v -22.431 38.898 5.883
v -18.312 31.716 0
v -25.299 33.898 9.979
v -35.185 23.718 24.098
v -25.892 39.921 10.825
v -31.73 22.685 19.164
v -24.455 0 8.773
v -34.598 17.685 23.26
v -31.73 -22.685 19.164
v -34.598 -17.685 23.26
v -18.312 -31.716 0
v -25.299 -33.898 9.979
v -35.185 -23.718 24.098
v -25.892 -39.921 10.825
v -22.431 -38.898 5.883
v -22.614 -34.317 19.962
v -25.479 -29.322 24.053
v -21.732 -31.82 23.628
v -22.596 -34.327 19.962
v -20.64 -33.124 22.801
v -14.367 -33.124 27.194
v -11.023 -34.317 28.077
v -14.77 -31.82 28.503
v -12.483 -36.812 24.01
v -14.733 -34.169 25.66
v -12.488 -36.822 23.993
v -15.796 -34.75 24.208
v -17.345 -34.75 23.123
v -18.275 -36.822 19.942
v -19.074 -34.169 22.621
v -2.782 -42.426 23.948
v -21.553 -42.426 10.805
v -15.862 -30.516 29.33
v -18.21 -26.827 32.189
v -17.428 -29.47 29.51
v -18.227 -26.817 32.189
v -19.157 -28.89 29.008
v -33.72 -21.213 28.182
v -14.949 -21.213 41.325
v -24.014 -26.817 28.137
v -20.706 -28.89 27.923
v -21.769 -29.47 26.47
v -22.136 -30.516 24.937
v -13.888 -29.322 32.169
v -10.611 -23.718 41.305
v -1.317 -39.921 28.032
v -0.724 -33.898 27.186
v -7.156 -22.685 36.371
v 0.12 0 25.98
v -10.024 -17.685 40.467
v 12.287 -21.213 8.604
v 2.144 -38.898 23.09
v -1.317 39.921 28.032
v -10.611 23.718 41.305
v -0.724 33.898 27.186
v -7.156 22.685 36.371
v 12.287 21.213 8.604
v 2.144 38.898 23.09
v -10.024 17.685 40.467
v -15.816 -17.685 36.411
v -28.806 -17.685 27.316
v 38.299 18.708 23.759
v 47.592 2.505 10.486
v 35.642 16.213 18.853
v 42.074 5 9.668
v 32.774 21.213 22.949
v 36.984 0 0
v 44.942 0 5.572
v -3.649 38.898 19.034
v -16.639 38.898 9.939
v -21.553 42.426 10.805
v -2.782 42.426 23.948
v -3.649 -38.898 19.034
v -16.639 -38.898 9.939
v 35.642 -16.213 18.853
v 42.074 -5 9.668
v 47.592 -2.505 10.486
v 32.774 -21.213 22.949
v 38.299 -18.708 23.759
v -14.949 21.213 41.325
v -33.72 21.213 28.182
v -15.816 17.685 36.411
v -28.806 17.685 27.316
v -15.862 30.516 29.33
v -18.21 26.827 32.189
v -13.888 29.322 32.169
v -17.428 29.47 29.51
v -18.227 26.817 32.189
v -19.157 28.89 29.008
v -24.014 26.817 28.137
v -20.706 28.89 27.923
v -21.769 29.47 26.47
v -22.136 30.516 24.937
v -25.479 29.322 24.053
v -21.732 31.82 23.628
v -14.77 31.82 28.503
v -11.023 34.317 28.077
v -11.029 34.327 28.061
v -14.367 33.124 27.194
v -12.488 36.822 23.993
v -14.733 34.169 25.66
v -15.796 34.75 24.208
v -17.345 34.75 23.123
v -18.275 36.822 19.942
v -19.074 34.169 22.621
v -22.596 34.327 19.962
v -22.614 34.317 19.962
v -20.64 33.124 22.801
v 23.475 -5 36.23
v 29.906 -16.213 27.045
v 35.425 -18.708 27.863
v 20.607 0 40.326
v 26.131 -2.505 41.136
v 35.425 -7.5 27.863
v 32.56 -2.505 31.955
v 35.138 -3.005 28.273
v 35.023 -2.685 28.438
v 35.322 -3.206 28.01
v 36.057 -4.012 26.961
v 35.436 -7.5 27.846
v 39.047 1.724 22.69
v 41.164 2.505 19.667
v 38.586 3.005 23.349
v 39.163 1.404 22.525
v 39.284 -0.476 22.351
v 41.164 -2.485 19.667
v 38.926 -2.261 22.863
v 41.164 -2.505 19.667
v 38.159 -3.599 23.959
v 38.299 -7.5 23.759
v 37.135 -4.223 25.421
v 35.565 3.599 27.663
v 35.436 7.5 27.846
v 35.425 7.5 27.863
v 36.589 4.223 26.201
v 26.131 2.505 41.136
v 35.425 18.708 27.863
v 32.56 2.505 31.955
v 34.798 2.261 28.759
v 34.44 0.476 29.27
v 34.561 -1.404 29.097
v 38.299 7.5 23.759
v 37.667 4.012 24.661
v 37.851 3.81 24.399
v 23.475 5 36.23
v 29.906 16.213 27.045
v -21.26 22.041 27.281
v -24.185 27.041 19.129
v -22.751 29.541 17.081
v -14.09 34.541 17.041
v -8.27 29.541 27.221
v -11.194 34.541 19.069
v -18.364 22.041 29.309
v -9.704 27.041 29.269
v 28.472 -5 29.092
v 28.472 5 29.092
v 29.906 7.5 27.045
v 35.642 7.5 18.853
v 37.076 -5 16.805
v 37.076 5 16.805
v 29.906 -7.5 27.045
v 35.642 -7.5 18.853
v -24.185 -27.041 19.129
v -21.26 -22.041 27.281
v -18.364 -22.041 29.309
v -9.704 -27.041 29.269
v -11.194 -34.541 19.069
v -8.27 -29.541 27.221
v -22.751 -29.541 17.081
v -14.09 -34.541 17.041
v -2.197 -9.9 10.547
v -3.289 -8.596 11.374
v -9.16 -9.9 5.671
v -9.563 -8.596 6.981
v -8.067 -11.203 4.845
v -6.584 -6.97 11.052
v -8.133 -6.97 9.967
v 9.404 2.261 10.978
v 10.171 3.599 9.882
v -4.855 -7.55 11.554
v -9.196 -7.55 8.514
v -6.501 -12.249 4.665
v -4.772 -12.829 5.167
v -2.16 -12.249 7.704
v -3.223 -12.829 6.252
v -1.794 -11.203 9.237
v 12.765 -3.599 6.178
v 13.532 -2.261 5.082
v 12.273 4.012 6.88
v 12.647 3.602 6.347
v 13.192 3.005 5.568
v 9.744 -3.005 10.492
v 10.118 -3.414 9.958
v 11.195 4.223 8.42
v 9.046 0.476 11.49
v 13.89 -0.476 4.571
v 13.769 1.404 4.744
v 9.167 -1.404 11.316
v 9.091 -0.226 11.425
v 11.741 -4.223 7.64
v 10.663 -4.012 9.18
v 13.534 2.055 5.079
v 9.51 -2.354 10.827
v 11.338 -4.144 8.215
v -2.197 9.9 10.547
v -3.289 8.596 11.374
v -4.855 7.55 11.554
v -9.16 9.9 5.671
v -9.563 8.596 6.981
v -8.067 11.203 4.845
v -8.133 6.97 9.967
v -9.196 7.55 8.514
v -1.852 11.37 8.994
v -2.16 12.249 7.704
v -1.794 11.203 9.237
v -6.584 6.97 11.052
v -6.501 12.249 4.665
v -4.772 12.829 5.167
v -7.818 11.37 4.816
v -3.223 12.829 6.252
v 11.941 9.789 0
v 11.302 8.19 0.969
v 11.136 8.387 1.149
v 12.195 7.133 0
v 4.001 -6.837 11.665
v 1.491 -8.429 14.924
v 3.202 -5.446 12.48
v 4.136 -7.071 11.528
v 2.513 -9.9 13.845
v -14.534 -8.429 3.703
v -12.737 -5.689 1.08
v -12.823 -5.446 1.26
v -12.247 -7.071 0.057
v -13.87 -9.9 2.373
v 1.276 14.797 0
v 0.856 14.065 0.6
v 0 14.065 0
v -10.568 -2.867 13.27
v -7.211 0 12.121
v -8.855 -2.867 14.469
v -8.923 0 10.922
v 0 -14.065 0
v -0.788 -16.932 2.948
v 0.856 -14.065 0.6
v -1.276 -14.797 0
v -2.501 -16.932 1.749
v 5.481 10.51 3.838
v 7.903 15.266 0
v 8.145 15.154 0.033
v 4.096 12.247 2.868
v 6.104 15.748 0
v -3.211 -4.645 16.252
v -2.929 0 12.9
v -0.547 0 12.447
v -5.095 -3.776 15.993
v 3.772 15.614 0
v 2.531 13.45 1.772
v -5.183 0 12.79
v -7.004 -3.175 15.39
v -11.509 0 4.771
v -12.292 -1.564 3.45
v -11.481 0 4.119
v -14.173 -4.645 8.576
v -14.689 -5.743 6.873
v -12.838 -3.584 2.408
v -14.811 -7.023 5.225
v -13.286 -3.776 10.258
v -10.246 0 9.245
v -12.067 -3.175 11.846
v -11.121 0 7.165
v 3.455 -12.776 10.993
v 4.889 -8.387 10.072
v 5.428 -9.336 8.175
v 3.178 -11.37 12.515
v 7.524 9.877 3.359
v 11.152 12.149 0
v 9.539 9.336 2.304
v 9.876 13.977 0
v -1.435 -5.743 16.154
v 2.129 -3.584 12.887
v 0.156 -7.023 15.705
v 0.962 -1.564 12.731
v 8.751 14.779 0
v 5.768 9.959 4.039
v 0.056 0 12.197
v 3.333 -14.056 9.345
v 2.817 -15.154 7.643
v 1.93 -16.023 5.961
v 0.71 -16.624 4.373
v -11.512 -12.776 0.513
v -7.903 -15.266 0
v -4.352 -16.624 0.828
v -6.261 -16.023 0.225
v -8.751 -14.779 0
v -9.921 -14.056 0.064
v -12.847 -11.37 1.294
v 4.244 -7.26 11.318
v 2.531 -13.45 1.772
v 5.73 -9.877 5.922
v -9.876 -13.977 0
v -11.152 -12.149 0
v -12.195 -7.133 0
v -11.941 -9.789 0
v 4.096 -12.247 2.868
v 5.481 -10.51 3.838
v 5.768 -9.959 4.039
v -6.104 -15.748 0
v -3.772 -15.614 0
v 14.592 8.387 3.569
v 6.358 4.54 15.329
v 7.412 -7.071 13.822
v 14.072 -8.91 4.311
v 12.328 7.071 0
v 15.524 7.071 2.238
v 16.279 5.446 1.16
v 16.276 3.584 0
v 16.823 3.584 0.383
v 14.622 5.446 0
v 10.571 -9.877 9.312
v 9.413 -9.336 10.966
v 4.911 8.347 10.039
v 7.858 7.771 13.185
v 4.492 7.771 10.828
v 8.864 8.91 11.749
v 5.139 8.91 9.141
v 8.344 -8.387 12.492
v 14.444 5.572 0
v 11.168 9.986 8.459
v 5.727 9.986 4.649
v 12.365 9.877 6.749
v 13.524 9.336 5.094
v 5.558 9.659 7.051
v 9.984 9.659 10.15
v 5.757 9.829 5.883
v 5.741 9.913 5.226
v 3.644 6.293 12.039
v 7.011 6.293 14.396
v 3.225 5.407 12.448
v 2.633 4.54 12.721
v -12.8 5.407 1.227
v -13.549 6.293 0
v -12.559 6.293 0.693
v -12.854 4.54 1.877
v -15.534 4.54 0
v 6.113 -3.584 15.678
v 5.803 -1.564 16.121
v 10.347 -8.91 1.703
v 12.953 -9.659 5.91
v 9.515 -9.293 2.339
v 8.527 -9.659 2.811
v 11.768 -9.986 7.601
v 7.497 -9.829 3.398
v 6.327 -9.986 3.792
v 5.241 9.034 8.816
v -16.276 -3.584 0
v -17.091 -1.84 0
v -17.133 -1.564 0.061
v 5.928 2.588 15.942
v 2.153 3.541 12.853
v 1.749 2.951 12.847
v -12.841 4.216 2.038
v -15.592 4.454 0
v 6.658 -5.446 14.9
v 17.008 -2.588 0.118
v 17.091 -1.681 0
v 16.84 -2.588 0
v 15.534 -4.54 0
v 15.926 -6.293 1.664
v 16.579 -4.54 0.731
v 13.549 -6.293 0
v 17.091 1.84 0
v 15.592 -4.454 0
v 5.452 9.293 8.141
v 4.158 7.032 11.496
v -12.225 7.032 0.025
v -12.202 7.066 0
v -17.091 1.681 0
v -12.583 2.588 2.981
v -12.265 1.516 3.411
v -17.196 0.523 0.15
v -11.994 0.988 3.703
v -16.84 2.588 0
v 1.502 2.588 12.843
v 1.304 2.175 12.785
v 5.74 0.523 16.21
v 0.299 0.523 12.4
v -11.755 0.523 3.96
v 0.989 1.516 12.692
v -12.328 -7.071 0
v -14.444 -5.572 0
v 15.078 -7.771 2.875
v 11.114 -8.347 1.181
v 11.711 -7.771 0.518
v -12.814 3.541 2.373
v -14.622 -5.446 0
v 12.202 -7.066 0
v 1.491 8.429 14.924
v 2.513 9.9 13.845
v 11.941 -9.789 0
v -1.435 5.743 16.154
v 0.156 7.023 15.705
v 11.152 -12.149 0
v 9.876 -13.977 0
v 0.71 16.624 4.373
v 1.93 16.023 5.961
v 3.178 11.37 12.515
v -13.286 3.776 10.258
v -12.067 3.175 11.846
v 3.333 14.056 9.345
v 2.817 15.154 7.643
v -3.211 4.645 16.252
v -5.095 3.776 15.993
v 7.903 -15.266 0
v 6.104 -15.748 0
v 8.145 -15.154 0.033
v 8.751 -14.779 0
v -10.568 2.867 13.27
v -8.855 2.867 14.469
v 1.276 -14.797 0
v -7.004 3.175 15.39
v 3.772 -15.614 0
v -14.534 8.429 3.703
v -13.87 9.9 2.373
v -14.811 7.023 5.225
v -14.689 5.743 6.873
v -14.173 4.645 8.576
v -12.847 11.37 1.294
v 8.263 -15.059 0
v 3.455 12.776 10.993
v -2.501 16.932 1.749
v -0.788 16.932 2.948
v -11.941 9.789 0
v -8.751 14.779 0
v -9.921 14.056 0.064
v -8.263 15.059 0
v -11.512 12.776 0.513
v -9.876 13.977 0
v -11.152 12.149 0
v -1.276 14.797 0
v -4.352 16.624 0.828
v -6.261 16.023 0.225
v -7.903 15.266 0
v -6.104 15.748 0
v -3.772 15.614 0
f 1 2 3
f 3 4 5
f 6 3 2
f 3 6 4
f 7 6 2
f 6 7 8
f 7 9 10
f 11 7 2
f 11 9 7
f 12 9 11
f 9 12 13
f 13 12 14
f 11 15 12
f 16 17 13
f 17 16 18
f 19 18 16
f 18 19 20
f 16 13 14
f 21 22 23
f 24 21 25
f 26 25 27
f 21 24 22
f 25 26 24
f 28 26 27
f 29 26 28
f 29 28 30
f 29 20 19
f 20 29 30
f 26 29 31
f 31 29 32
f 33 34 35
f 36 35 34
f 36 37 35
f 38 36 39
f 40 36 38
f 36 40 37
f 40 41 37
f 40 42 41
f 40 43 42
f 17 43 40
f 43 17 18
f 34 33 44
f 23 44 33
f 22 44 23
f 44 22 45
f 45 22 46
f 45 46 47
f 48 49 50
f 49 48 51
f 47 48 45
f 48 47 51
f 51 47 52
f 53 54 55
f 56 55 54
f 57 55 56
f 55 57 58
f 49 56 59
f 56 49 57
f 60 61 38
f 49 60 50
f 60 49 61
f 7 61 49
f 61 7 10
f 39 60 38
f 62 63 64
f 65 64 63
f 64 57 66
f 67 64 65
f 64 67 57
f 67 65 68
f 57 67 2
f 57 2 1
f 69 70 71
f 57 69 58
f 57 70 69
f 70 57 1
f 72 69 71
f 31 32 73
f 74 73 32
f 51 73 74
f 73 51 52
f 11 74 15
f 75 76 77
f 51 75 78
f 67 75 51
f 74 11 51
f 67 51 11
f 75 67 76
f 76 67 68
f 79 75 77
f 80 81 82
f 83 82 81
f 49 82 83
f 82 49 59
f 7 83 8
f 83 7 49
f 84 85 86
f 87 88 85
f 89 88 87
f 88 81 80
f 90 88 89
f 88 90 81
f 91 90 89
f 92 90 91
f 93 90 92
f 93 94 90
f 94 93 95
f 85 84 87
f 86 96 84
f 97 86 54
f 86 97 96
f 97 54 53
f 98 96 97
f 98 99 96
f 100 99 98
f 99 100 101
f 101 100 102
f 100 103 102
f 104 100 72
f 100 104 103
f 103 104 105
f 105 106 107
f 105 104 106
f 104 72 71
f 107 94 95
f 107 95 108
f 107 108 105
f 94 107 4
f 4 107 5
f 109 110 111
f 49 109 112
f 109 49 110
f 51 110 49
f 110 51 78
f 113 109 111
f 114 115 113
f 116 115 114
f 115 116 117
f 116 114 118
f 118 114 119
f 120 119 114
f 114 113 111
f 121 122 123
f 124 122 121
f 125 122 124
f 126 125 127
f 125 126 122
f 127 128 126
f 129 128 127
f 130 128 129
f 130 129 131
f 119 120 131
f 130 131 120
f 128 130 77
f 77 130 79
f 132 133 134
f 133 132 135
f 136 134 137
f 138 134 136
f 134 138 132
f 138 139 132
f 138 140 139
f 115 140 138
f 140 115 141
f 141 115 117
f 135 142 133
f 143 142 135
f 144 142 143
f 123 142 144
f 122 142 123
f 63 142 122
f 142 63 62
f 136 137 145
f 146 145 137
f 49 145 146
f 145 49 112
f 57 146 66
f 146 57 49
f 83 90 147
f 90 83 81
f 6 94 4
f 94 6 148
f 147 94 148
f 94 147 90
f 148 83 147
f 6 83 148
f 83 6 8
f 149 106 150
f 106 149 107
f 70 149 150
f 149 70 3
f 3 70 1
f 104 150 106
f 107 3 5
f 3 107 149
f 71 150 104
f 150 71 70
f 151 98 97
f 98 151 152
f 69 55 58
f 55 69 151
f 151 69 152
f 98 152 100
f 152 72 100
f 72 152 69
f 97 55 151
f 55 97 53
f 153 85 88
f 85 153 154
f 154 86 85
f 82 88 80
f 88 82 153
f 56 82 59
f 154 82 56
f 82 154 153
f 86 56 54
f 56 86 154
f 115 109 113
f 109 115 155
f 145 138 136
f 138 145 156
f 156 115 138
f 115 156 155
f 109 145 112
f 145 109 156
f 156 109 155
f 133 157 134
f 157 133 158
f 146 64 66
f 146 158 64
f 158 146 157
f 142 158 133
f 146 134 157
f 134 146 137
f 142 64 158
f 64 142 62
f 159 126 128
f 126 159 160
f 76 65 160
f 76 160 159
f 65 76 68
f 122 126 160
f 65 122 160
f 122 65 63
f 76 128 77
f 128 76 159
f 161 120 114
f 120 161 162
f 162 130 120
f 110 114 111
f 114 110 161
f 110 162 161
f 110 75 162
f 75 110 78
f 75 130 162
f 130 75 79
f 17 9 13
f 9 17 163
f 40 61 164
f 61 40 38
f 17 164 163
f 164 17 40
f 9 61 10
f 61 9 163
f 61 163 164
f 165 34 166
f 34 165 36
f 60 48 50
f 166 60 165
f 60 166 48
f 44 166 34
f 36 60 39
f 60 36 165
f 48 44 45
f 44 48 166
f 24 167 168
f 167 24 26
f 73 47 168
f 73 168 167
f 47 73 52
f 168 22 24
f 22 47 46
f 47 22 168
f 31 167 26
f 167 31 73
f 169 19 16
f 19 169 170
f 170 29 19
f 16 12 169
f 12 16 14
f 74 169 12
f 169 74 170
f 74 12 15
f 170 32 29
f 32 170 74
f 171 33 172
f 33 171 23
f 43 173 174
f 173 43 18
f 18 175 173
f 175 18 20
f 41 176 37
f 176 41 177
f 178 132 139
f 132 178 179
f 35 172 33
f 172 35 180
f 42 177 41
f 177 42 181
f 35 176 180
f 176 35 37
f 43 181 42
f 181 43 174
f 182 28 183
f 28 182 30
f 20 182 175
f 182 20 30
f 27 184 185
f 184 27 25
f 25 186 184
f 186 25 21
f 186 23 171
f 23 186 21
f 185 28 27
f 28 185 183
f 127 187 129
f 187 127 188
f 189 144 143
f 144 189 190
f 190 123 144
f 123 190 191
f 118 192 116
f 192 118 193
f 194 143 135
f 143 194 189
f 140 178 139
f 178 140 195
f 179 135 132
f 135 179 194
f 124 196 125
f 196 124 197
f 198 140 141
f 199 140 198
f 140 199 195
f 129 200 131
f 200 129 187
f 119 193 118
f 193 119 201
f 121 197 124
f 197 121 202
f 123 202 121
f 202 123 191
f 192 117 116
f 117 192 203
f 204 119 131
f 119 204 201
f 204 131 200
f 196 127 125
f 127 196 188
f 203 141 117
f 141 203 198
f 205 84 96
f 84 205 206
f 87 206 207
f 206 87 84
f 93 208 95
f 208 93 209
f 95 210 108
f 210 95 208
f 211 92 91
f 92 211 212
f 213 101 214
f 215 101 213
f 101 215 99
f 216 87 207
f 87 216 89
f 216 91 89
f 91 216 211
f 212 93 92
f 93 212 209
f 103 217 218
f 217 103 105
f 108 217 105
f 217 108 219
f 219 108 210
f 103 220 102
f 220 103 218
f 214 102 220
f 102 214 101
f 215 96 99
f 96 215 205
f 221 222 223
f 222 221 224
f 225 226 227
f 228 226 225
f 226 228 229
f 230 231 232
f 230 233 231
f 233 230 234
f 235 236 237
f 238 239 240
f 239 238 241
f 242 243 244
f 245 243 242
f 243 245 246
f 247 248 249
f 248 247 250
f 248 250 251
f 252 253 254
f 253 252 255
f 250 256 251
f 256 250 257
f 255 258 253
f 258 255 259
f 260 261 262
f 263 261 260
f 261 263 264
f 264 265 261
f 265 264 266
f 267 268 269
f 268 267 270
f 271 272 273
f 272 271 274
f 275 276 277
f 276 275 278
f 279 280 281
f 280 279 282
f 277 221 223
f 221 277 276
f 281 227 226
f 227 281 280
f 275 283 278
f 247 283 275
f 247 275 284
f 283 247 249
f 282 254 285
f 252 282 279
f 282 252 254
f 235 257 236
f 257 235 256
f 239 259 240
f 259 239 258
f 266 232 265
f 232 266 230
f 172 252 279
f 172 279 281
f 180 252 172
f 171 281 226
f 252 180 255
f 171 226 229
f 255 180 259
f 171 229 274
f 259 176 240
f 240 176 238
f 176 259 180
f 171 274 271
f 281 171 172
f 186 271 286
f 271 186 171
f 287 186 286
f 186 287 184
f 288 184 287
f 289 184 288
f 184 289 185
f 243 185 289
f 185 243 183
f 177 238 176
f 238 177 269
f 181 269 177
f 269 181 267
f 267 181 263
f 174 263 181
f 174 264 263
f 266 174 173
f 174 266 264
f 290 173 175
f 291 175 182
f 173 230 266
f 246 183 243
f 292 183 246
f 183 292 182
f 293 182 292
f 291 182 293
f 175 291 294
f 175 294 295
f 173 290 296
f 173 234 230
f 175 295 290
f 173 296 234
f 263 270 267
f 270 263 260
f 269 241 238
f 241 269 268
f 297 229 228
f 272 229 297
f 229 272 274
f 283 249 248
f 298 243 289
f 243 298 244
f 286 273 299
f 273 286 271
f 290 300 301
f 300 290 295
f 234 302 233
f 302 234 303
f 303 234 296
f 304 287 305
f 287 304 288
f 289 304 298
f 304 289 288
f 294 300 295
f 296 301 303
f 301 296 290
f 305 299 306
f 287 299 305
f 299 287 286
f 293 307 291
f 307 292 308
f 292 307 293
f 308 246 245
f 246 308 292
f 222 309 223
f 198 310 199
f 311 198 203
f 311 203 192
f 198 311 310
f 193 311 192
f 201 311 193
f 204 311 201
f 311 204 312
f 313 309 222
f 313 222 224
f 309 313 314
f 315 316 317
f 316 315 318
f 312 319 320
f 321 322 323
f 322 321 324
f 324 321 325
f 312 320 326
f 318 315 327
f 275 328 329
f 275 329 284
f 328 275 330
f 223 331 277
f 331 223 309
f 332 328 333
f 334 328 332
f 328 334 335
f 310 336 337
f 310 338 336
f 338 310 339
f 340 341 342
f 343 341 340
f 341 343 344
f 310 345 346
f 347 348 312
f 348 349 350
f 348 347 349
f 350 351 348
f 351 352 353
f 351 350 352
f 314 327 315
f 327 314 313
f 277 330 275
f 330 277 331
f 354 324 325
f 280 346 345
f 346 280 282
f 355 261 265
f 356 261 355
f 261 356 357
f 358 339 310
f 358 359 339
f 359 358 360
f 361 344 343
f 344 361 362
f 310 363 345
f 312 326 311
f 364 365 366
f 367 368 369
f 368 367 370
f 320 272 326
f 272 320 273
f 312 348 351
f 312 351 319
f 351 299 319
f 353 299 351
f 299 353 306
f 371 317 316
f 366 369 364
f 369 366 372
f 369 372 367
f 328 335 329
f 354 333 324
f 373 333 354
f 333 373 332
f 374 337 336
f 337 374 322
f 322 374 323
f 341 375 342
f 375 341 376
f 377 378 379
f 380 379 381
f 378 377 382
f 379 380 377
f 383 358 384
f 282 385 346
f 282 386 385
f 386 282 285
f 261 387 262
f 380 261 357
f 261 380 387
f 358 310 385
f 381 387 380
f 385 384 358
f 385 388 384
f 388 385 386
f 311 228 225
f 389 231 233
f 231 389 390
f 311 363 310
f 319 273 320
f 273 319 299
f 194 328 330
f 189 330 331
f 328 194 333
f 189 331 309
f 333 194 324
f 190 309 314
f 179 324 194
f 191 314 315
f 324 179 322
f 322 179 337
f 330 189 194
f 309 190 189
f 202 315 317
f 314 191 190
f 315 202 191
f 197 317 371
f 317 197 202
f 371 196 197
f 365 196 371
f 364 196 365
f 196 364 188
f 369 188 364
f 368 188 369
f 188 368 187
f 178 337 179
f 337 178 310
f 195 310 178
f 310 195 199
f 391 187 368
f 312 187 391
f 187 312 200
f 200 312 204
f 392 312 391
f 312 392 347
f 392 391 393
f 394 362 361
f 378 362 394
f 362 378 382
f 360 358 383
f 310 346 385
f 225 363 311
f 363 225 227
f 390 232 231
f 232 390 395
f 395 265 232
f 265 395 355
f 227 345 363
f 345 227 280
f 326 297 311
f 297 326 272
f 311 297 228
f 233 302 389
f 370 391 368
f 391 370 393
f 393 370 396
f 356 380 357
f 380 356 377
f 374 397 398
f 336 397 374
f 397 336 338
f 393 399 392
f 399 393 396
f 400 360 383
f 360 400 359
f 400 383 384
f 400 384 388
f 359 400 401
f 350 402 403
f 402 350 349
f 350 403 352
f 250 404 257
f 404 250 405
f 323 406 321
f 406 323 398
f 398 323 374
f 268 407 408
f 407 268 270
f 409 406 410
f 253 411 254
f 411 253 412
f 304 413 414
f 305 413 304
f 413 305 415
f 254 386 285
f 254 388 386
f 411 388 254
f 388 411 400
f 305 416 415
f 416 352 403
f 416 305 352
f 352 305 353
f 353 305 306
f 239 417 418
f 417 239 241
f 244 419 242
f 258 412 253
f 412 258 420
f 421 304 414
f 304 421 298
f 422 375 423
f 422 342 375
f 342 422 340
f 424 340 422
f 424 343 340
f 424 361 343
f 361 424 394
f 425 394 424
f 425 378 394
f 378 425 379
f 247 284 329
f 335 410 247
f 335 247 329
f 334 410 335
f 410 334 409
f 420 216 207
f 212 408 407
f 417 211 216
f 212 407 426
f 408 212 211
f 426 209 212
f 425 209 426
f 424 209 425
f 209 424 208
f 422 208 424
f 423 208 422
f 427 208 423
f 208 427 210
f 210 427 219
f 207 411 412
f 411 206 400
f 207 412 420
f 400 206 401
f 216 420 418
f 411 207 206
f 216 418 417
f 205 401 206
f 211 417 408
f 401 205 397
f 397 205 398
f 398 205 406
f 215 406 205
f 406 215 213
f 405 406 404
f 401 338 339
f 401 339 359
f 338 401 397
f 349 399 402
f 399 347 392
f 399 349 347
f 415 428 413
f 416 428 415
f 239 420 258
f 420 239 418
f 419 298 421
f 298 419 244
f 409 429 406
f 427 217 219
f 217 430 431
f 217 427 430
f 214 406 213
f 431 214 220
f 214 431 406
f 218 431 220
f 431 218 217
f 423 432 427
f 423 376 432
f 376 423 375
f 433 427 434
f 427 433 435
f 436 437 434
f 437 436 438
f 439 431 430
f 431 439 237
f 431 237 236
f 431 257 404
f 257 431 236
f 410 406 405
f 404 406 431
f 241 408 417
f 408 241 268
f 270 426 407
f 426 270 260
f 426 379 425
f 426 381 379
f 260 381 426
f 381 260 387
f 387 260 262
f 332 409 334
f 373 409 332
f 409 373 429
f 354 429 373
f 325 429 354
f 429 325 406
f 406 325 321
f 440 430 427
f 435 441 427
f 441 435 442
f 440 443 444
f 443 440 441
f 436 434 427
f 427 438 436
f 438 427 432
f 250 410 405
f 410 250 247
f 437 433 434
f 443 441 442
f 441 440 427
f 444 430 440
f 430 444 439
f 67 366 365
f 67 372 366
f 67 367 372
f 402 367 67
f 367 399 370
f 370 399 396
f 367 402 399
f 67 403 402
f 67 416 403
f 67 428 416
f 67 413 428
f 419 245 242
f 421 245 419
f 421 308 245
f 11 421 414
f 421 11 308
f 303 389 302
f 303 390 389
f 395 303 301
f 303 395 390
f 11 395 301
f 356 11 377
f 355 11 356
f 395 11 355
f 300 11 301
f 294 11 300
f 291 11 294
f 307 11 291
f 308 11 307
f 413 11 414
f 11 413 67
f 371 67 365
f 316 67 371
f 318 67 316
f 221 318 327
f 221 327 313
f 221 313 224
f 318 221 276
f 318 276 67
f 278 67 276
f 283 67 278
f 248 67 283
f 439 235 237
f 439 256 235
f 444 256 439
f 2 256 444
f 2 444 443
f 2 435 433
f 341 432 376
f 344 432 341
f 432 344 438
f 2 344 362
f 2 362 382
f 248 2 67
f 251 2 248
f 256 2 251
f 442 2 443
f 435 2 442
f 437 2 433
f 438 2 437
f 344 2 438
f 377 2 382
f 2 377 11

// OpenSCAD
// file: globals.scad
/*
Most things in this file is represented as one millimeter, so keep that in mind while changing things.
Some of the setting are not mm but at variables that you can set, such as 2*x=2x and you are setting what x is.
I will try to specify when things are variables and not exact measurements.
*/

obj_leg = 30;
leg_length = 5.5;
small_number = 0.001;
metal_core_rode_global = 5;


///////////////// number of holes /////////////////////
z_hole_number = 8;
other_holes = 8;

///////////////// Pins /////////////////////

//pins that poke out
ball_size = 10;
pin_height = 20;
pin_diameter = 6;


//holes
hole_ball_size = ball_size;
hole_pin_height = pin_height;
hole_pin_diameter = pin_diameter;

///////////////// Z THINGS /////////////////////

berring_slot_width = 7.5;
berring_slot_depth = 6.5;
metal_core_rode = 5;

///////////////// X THINGS /////////////////////

//male dove tails
max_width=10;
min_width=5;
depth=5;
height=obj_leg/2;

//female dove tails, this is found on the y mounts
girl_max_width=11;
girl_min_width=5;
girl_depth=5;
girl_height=obj_leg;


///////////////// Y THINGS /////////////////////
/*
The Y is so normal that all of those global variables at the top should change all of the setting in it, this section is set her incase there are variables set in the future development of this project.
*/
// file: include.scad
//////////////////      END SECTION       //////////////////

	module added_pins(){
		difference(){
			union(){
				translate([30/(15/4),obj_leg*leg_length,30/(15/4)]) pin();
				translate([30/(15/4)+14.5,obj_leg*leg_length,30/(15/4)+14]) pin();
			}
			union(){
							translate([30/(15/4)+13.5,obj_leg*leg_length-20,30/(15/4)+5])cube(size=[2,40,15]);
							translate([30/(15/4)+7.5,obj_leg*leg_length-20,30/(15/4)+15])rotate([0,90,0]) cube(size=[2,40,15]);	

							translate([30/(15/4)-1,obj_leg*leg_length-20,30/(15/4)-8])cube(size=[2,40,15]);
							translate([30/(15/4)-10,obj_leg*leg_length-20,30/(15/4)+1])rotate([0,90,0]) cube(size=[2,40,15]);
			}
		}
	}
	module taken_pins() {
		translate([30/(15/4)+14,obj_leg*leg_length-10,30/(15/4)]) mirror_pin();
		translate([30/(15/4),obj_leg*leg_length-10,30/(15/4)+15]) mirror_pin();
	}


//////////////////      OTHER STUFF       //////////////////

	module holes() {
		rotate([0,0,90]) for(y=[0:other_holes])
		translate([obj_leg+y*15,-15.5,7.5]) union() {
			translate([7.5,0,15]) hole_up();
			hole_down();
		}
	}
	module extend_holes() {
	module top(){
		rotate([0,0,90]) for(y=[0:other_holes+1])
		translate([(30/4)+y*15,-15.5,7.5]) union() {
			translate([7.5,0,15]) hole_up();
		}
	}
	module bottom(){
		rotate([0,0,90]) for(y=[0:other_holes+2])
		translate([(30/4)+y*15,-15.5,7.5]) union() {
			hole_down();
		
}
	}
	union(){
		top();
		bottom();
	}
	}

	module hole() {
		union() {
			rotate([90, 90, 0]) cylinder(h=40, d=hole_pin_diameter, center=true);
			translate([0,7.5,0]) sphere(d=hole_ball_size);
			translate([0,-6,0]) sphere(d=hole_ball_size);
		}
	}
	module hole_up() {
		union() {
			rotate([90, 90, 0]) cylinder(h=40, d=hole_pin_diameter, center=true);
			translate([0,7.5,10]) cylinder(h=hole_pin_height, d=hole_pin_diameter, center=true);
			translate([0,-6,10]) cylinder(h=hole_pin_height, d=hole_pin_diameter, center=true);
			translate([0,7.5,0]) sphere(d=hole_ball_size);
			translate([0,-6,0]) sphere(d=hole_ball_size);
		}
	}
	module hole_down() {
		union() {
			rotate([90, 90, 0]) cylinder(h=40, d=hole_pin_diameter, center=true);
			translate([0,7.5,-10]) cylinder(h=hole_pin_height, d=hole_pin_diameter, center=true);
			translate([0,-6,-10]) cylinder(h=hole_pin_height, d=hole_pin_diameter, center=true);
			translate([0,7.5,0]) sphere(d=hole_ball_size);
			translate([0,-6,0]) sphere(d=hole_ball_size);
		}
	}
	module pin() {
		union() {
			rotate([90, 90, 0]) cylinder(h=pin_height, d=pin_diameter, center=true);
			translate([0,7.5,0]) sphere(d=ball_size);
		}
	}

	module mirror_pin() {
		rotate([90, 90, 0]) cylinder(h=hole_pin_height+small_number, d=hole_pin_diameter, center=true);
		translate([0,-(pin_height-(ball_size/2)),0]) sphere(d=ball_size);
	}


//////////////////      SOME RACK AND Z THINGS       //////////////////

module z_holes() {
    rotate([0,-90,0]) for(z=[0:z_hole_number])
    translate([22.5+z*15,16,-12])
        hole();
}

module pin_cuts() {
	union(){
		cube(size=[2,10,40], center=true);
		rotate([0,0,90]) cube(size=[2,10,40], center=true);
	}
}
module pin_uncut() {
	union(){
		rotate([0, 0, 90]) cylinder(h=hole_pin_height, d=hole_pin_diameter, center=true);
		translate([0,0,10]) sphere(d=ball_hole);
	}
}


module pin_out() {
	union(){
		rotate([0, 0, 90]) cylinder(h=pin_height, d=pin_diameter, center=true);
		translate([0,0,10]) sphere(d= ball_size);
	}
}


module pins_z(){
	difference() {
		pin_out();
		pin_cuts();
	}
}
//////////////////      RACK AND SLIDE     ///////////////////

module straight_pins() {
	for(z=[0:((((obj_leg*leg_length)*2)-(obj_leg*2))/3)/14.5]) rotate([-90,0,0]) translate([z*15,30/(15/4),14]) pins_z();
	for(z=[0:((((obj_leg*leg_length)*2)-(obj_leg*2))/3)/14.5]) rotate([-90,0,0]) translate([z*15,30/(15/4)-14,14]) pins_z();
}
module stagger_pins() {
	for(z=[0:((((obj_leg*leg_length)*2)-(obj_leg*2))/3)/14.5]) rotate([-90,0,0]) translate([z*15,30/(15/4),14]) pins_z();
	for(z=[0:((((obj_leg*leg_length)*2)-(obj_leg*2))/3)/14.5]) rotate([-90,0,0]) translate([z*15+7,30/(15/4)-14,14]) pins_z();
}


//////////////////      DOVE TAIL       //////////////////

module male_dovetail(height) {
	dovetail_3d(max_width,min_width,depth,height);
}

module dovetail_3d(max_width=11, min_width=5, depth=5, height=30) {
	linear_extrude(height=height, convexity=2)
		dovetail_2d(max_width,min_width,depth);
}

module dovetail_2d(max_width=11, min_width=5, depth=5) {
	angle=atan((max_width/2-min_width/2)/depth);
	echo("angle: ", angle);
	polygon(paths=[[0,1,2,3,0]], points=[[-min_width/2,0], [-max_width/2,depth], [max_width/2, depth], [min_width/2,0]]);
}

//bow tie
	module tie_end(height){
				rotate([0,0,0]) translate([0,-0.01,((obj_leg/2)/2)]) male_dovetail(height);
				rotate([0,90,0]) translate([0,-0.01,((obj_leg/2)/2)]) male_dovetail(height);
				rotate([0,180,0]) translate([0,-0.01,((obj_leg/2)/2)]) male_dovetail(height);
				rotate([0,-90,0]) translate([0,-0.01,((obj_leg/2)/2)]) male_dovetail(height);
	}

module bow_support(){
	difference(){
		intersection(){
			translate([-15,0,-15]) cube([30,9,30]);
			scale([1.05,1.05,1.05]) rotate([0,45,0]) tie_end();
		}
		cube([29.2,29.2,29.2], center=true);
	}
}

	module wrap(){
		depth = 30;
				translate([-15,30,15]) rotate([90,180,90]) male_dovetail(height=depth);
				rotate([0,90,0]) translate([-15,30,15]) rotate([90,180,90]) male_dovetail(height=depth);
				rotate([0,180,0]) translate([-15,30,15]) rotate([90,180,90]) male_dovetail(height=depth);
				rotate([0,-90,0]) translate([-15,30,15]) rotate([90,180,90]) male_dovetail(height=depth);
	}
// main file
include <include.scad>;
include <globals.scad>;

	slot_translate = .5;
	rod_size = .5;
module basic_corner(){
	module added(){
			translate([0,0,15]) cube([obj_leg,obj_leg,obj_leg*2], center=true);
			translate([0,15,0]) cube([obj_leg,obj_leg*2,obj_leg], center=true);
			translate([15,0,0]) cube([obj_leg*2,obj_leg,obj_leg], center=true);
	}
	module taken(){
		cylinder(d=8.5, h=obj_leg*5, center=true);
		rotate([0,90,0]) cylinder(d=8.5, h=obj_leg*5, center=true);
		rotate([90,0,0]) cylinder(d=8.5, h=obj_leg*5, center=true);
		cylinder(d=20, h=28, center=true);
		rotate([0,90,0]) cylinder(d=20, h=28, center=true);
		rotate([90,0,0]) cylinder(d=20, h=28, center=true);

		rotate([0,45,180]) translate([0,-45,0]) tie_end();
		rotate([0,45,90]) translate([0,-45,0]) tie_end();
		rotate([-90,0,45]) translate([0,-45,0]) tie_end();

	}
	module corner() {
		difference(){
			added();
			taken();
		}
	};
	rotate([45,0,0]) corner();
};
module full_corner(){
	difference(){
		translate([0,0,0]) rotate([0,-35,0])basic_corner();
		union(){
			//cylinder(h=50, d=15);
			translate([0,0,-25]) cube([200,200,50], center=true);
		}
	}
}

full_corner();
